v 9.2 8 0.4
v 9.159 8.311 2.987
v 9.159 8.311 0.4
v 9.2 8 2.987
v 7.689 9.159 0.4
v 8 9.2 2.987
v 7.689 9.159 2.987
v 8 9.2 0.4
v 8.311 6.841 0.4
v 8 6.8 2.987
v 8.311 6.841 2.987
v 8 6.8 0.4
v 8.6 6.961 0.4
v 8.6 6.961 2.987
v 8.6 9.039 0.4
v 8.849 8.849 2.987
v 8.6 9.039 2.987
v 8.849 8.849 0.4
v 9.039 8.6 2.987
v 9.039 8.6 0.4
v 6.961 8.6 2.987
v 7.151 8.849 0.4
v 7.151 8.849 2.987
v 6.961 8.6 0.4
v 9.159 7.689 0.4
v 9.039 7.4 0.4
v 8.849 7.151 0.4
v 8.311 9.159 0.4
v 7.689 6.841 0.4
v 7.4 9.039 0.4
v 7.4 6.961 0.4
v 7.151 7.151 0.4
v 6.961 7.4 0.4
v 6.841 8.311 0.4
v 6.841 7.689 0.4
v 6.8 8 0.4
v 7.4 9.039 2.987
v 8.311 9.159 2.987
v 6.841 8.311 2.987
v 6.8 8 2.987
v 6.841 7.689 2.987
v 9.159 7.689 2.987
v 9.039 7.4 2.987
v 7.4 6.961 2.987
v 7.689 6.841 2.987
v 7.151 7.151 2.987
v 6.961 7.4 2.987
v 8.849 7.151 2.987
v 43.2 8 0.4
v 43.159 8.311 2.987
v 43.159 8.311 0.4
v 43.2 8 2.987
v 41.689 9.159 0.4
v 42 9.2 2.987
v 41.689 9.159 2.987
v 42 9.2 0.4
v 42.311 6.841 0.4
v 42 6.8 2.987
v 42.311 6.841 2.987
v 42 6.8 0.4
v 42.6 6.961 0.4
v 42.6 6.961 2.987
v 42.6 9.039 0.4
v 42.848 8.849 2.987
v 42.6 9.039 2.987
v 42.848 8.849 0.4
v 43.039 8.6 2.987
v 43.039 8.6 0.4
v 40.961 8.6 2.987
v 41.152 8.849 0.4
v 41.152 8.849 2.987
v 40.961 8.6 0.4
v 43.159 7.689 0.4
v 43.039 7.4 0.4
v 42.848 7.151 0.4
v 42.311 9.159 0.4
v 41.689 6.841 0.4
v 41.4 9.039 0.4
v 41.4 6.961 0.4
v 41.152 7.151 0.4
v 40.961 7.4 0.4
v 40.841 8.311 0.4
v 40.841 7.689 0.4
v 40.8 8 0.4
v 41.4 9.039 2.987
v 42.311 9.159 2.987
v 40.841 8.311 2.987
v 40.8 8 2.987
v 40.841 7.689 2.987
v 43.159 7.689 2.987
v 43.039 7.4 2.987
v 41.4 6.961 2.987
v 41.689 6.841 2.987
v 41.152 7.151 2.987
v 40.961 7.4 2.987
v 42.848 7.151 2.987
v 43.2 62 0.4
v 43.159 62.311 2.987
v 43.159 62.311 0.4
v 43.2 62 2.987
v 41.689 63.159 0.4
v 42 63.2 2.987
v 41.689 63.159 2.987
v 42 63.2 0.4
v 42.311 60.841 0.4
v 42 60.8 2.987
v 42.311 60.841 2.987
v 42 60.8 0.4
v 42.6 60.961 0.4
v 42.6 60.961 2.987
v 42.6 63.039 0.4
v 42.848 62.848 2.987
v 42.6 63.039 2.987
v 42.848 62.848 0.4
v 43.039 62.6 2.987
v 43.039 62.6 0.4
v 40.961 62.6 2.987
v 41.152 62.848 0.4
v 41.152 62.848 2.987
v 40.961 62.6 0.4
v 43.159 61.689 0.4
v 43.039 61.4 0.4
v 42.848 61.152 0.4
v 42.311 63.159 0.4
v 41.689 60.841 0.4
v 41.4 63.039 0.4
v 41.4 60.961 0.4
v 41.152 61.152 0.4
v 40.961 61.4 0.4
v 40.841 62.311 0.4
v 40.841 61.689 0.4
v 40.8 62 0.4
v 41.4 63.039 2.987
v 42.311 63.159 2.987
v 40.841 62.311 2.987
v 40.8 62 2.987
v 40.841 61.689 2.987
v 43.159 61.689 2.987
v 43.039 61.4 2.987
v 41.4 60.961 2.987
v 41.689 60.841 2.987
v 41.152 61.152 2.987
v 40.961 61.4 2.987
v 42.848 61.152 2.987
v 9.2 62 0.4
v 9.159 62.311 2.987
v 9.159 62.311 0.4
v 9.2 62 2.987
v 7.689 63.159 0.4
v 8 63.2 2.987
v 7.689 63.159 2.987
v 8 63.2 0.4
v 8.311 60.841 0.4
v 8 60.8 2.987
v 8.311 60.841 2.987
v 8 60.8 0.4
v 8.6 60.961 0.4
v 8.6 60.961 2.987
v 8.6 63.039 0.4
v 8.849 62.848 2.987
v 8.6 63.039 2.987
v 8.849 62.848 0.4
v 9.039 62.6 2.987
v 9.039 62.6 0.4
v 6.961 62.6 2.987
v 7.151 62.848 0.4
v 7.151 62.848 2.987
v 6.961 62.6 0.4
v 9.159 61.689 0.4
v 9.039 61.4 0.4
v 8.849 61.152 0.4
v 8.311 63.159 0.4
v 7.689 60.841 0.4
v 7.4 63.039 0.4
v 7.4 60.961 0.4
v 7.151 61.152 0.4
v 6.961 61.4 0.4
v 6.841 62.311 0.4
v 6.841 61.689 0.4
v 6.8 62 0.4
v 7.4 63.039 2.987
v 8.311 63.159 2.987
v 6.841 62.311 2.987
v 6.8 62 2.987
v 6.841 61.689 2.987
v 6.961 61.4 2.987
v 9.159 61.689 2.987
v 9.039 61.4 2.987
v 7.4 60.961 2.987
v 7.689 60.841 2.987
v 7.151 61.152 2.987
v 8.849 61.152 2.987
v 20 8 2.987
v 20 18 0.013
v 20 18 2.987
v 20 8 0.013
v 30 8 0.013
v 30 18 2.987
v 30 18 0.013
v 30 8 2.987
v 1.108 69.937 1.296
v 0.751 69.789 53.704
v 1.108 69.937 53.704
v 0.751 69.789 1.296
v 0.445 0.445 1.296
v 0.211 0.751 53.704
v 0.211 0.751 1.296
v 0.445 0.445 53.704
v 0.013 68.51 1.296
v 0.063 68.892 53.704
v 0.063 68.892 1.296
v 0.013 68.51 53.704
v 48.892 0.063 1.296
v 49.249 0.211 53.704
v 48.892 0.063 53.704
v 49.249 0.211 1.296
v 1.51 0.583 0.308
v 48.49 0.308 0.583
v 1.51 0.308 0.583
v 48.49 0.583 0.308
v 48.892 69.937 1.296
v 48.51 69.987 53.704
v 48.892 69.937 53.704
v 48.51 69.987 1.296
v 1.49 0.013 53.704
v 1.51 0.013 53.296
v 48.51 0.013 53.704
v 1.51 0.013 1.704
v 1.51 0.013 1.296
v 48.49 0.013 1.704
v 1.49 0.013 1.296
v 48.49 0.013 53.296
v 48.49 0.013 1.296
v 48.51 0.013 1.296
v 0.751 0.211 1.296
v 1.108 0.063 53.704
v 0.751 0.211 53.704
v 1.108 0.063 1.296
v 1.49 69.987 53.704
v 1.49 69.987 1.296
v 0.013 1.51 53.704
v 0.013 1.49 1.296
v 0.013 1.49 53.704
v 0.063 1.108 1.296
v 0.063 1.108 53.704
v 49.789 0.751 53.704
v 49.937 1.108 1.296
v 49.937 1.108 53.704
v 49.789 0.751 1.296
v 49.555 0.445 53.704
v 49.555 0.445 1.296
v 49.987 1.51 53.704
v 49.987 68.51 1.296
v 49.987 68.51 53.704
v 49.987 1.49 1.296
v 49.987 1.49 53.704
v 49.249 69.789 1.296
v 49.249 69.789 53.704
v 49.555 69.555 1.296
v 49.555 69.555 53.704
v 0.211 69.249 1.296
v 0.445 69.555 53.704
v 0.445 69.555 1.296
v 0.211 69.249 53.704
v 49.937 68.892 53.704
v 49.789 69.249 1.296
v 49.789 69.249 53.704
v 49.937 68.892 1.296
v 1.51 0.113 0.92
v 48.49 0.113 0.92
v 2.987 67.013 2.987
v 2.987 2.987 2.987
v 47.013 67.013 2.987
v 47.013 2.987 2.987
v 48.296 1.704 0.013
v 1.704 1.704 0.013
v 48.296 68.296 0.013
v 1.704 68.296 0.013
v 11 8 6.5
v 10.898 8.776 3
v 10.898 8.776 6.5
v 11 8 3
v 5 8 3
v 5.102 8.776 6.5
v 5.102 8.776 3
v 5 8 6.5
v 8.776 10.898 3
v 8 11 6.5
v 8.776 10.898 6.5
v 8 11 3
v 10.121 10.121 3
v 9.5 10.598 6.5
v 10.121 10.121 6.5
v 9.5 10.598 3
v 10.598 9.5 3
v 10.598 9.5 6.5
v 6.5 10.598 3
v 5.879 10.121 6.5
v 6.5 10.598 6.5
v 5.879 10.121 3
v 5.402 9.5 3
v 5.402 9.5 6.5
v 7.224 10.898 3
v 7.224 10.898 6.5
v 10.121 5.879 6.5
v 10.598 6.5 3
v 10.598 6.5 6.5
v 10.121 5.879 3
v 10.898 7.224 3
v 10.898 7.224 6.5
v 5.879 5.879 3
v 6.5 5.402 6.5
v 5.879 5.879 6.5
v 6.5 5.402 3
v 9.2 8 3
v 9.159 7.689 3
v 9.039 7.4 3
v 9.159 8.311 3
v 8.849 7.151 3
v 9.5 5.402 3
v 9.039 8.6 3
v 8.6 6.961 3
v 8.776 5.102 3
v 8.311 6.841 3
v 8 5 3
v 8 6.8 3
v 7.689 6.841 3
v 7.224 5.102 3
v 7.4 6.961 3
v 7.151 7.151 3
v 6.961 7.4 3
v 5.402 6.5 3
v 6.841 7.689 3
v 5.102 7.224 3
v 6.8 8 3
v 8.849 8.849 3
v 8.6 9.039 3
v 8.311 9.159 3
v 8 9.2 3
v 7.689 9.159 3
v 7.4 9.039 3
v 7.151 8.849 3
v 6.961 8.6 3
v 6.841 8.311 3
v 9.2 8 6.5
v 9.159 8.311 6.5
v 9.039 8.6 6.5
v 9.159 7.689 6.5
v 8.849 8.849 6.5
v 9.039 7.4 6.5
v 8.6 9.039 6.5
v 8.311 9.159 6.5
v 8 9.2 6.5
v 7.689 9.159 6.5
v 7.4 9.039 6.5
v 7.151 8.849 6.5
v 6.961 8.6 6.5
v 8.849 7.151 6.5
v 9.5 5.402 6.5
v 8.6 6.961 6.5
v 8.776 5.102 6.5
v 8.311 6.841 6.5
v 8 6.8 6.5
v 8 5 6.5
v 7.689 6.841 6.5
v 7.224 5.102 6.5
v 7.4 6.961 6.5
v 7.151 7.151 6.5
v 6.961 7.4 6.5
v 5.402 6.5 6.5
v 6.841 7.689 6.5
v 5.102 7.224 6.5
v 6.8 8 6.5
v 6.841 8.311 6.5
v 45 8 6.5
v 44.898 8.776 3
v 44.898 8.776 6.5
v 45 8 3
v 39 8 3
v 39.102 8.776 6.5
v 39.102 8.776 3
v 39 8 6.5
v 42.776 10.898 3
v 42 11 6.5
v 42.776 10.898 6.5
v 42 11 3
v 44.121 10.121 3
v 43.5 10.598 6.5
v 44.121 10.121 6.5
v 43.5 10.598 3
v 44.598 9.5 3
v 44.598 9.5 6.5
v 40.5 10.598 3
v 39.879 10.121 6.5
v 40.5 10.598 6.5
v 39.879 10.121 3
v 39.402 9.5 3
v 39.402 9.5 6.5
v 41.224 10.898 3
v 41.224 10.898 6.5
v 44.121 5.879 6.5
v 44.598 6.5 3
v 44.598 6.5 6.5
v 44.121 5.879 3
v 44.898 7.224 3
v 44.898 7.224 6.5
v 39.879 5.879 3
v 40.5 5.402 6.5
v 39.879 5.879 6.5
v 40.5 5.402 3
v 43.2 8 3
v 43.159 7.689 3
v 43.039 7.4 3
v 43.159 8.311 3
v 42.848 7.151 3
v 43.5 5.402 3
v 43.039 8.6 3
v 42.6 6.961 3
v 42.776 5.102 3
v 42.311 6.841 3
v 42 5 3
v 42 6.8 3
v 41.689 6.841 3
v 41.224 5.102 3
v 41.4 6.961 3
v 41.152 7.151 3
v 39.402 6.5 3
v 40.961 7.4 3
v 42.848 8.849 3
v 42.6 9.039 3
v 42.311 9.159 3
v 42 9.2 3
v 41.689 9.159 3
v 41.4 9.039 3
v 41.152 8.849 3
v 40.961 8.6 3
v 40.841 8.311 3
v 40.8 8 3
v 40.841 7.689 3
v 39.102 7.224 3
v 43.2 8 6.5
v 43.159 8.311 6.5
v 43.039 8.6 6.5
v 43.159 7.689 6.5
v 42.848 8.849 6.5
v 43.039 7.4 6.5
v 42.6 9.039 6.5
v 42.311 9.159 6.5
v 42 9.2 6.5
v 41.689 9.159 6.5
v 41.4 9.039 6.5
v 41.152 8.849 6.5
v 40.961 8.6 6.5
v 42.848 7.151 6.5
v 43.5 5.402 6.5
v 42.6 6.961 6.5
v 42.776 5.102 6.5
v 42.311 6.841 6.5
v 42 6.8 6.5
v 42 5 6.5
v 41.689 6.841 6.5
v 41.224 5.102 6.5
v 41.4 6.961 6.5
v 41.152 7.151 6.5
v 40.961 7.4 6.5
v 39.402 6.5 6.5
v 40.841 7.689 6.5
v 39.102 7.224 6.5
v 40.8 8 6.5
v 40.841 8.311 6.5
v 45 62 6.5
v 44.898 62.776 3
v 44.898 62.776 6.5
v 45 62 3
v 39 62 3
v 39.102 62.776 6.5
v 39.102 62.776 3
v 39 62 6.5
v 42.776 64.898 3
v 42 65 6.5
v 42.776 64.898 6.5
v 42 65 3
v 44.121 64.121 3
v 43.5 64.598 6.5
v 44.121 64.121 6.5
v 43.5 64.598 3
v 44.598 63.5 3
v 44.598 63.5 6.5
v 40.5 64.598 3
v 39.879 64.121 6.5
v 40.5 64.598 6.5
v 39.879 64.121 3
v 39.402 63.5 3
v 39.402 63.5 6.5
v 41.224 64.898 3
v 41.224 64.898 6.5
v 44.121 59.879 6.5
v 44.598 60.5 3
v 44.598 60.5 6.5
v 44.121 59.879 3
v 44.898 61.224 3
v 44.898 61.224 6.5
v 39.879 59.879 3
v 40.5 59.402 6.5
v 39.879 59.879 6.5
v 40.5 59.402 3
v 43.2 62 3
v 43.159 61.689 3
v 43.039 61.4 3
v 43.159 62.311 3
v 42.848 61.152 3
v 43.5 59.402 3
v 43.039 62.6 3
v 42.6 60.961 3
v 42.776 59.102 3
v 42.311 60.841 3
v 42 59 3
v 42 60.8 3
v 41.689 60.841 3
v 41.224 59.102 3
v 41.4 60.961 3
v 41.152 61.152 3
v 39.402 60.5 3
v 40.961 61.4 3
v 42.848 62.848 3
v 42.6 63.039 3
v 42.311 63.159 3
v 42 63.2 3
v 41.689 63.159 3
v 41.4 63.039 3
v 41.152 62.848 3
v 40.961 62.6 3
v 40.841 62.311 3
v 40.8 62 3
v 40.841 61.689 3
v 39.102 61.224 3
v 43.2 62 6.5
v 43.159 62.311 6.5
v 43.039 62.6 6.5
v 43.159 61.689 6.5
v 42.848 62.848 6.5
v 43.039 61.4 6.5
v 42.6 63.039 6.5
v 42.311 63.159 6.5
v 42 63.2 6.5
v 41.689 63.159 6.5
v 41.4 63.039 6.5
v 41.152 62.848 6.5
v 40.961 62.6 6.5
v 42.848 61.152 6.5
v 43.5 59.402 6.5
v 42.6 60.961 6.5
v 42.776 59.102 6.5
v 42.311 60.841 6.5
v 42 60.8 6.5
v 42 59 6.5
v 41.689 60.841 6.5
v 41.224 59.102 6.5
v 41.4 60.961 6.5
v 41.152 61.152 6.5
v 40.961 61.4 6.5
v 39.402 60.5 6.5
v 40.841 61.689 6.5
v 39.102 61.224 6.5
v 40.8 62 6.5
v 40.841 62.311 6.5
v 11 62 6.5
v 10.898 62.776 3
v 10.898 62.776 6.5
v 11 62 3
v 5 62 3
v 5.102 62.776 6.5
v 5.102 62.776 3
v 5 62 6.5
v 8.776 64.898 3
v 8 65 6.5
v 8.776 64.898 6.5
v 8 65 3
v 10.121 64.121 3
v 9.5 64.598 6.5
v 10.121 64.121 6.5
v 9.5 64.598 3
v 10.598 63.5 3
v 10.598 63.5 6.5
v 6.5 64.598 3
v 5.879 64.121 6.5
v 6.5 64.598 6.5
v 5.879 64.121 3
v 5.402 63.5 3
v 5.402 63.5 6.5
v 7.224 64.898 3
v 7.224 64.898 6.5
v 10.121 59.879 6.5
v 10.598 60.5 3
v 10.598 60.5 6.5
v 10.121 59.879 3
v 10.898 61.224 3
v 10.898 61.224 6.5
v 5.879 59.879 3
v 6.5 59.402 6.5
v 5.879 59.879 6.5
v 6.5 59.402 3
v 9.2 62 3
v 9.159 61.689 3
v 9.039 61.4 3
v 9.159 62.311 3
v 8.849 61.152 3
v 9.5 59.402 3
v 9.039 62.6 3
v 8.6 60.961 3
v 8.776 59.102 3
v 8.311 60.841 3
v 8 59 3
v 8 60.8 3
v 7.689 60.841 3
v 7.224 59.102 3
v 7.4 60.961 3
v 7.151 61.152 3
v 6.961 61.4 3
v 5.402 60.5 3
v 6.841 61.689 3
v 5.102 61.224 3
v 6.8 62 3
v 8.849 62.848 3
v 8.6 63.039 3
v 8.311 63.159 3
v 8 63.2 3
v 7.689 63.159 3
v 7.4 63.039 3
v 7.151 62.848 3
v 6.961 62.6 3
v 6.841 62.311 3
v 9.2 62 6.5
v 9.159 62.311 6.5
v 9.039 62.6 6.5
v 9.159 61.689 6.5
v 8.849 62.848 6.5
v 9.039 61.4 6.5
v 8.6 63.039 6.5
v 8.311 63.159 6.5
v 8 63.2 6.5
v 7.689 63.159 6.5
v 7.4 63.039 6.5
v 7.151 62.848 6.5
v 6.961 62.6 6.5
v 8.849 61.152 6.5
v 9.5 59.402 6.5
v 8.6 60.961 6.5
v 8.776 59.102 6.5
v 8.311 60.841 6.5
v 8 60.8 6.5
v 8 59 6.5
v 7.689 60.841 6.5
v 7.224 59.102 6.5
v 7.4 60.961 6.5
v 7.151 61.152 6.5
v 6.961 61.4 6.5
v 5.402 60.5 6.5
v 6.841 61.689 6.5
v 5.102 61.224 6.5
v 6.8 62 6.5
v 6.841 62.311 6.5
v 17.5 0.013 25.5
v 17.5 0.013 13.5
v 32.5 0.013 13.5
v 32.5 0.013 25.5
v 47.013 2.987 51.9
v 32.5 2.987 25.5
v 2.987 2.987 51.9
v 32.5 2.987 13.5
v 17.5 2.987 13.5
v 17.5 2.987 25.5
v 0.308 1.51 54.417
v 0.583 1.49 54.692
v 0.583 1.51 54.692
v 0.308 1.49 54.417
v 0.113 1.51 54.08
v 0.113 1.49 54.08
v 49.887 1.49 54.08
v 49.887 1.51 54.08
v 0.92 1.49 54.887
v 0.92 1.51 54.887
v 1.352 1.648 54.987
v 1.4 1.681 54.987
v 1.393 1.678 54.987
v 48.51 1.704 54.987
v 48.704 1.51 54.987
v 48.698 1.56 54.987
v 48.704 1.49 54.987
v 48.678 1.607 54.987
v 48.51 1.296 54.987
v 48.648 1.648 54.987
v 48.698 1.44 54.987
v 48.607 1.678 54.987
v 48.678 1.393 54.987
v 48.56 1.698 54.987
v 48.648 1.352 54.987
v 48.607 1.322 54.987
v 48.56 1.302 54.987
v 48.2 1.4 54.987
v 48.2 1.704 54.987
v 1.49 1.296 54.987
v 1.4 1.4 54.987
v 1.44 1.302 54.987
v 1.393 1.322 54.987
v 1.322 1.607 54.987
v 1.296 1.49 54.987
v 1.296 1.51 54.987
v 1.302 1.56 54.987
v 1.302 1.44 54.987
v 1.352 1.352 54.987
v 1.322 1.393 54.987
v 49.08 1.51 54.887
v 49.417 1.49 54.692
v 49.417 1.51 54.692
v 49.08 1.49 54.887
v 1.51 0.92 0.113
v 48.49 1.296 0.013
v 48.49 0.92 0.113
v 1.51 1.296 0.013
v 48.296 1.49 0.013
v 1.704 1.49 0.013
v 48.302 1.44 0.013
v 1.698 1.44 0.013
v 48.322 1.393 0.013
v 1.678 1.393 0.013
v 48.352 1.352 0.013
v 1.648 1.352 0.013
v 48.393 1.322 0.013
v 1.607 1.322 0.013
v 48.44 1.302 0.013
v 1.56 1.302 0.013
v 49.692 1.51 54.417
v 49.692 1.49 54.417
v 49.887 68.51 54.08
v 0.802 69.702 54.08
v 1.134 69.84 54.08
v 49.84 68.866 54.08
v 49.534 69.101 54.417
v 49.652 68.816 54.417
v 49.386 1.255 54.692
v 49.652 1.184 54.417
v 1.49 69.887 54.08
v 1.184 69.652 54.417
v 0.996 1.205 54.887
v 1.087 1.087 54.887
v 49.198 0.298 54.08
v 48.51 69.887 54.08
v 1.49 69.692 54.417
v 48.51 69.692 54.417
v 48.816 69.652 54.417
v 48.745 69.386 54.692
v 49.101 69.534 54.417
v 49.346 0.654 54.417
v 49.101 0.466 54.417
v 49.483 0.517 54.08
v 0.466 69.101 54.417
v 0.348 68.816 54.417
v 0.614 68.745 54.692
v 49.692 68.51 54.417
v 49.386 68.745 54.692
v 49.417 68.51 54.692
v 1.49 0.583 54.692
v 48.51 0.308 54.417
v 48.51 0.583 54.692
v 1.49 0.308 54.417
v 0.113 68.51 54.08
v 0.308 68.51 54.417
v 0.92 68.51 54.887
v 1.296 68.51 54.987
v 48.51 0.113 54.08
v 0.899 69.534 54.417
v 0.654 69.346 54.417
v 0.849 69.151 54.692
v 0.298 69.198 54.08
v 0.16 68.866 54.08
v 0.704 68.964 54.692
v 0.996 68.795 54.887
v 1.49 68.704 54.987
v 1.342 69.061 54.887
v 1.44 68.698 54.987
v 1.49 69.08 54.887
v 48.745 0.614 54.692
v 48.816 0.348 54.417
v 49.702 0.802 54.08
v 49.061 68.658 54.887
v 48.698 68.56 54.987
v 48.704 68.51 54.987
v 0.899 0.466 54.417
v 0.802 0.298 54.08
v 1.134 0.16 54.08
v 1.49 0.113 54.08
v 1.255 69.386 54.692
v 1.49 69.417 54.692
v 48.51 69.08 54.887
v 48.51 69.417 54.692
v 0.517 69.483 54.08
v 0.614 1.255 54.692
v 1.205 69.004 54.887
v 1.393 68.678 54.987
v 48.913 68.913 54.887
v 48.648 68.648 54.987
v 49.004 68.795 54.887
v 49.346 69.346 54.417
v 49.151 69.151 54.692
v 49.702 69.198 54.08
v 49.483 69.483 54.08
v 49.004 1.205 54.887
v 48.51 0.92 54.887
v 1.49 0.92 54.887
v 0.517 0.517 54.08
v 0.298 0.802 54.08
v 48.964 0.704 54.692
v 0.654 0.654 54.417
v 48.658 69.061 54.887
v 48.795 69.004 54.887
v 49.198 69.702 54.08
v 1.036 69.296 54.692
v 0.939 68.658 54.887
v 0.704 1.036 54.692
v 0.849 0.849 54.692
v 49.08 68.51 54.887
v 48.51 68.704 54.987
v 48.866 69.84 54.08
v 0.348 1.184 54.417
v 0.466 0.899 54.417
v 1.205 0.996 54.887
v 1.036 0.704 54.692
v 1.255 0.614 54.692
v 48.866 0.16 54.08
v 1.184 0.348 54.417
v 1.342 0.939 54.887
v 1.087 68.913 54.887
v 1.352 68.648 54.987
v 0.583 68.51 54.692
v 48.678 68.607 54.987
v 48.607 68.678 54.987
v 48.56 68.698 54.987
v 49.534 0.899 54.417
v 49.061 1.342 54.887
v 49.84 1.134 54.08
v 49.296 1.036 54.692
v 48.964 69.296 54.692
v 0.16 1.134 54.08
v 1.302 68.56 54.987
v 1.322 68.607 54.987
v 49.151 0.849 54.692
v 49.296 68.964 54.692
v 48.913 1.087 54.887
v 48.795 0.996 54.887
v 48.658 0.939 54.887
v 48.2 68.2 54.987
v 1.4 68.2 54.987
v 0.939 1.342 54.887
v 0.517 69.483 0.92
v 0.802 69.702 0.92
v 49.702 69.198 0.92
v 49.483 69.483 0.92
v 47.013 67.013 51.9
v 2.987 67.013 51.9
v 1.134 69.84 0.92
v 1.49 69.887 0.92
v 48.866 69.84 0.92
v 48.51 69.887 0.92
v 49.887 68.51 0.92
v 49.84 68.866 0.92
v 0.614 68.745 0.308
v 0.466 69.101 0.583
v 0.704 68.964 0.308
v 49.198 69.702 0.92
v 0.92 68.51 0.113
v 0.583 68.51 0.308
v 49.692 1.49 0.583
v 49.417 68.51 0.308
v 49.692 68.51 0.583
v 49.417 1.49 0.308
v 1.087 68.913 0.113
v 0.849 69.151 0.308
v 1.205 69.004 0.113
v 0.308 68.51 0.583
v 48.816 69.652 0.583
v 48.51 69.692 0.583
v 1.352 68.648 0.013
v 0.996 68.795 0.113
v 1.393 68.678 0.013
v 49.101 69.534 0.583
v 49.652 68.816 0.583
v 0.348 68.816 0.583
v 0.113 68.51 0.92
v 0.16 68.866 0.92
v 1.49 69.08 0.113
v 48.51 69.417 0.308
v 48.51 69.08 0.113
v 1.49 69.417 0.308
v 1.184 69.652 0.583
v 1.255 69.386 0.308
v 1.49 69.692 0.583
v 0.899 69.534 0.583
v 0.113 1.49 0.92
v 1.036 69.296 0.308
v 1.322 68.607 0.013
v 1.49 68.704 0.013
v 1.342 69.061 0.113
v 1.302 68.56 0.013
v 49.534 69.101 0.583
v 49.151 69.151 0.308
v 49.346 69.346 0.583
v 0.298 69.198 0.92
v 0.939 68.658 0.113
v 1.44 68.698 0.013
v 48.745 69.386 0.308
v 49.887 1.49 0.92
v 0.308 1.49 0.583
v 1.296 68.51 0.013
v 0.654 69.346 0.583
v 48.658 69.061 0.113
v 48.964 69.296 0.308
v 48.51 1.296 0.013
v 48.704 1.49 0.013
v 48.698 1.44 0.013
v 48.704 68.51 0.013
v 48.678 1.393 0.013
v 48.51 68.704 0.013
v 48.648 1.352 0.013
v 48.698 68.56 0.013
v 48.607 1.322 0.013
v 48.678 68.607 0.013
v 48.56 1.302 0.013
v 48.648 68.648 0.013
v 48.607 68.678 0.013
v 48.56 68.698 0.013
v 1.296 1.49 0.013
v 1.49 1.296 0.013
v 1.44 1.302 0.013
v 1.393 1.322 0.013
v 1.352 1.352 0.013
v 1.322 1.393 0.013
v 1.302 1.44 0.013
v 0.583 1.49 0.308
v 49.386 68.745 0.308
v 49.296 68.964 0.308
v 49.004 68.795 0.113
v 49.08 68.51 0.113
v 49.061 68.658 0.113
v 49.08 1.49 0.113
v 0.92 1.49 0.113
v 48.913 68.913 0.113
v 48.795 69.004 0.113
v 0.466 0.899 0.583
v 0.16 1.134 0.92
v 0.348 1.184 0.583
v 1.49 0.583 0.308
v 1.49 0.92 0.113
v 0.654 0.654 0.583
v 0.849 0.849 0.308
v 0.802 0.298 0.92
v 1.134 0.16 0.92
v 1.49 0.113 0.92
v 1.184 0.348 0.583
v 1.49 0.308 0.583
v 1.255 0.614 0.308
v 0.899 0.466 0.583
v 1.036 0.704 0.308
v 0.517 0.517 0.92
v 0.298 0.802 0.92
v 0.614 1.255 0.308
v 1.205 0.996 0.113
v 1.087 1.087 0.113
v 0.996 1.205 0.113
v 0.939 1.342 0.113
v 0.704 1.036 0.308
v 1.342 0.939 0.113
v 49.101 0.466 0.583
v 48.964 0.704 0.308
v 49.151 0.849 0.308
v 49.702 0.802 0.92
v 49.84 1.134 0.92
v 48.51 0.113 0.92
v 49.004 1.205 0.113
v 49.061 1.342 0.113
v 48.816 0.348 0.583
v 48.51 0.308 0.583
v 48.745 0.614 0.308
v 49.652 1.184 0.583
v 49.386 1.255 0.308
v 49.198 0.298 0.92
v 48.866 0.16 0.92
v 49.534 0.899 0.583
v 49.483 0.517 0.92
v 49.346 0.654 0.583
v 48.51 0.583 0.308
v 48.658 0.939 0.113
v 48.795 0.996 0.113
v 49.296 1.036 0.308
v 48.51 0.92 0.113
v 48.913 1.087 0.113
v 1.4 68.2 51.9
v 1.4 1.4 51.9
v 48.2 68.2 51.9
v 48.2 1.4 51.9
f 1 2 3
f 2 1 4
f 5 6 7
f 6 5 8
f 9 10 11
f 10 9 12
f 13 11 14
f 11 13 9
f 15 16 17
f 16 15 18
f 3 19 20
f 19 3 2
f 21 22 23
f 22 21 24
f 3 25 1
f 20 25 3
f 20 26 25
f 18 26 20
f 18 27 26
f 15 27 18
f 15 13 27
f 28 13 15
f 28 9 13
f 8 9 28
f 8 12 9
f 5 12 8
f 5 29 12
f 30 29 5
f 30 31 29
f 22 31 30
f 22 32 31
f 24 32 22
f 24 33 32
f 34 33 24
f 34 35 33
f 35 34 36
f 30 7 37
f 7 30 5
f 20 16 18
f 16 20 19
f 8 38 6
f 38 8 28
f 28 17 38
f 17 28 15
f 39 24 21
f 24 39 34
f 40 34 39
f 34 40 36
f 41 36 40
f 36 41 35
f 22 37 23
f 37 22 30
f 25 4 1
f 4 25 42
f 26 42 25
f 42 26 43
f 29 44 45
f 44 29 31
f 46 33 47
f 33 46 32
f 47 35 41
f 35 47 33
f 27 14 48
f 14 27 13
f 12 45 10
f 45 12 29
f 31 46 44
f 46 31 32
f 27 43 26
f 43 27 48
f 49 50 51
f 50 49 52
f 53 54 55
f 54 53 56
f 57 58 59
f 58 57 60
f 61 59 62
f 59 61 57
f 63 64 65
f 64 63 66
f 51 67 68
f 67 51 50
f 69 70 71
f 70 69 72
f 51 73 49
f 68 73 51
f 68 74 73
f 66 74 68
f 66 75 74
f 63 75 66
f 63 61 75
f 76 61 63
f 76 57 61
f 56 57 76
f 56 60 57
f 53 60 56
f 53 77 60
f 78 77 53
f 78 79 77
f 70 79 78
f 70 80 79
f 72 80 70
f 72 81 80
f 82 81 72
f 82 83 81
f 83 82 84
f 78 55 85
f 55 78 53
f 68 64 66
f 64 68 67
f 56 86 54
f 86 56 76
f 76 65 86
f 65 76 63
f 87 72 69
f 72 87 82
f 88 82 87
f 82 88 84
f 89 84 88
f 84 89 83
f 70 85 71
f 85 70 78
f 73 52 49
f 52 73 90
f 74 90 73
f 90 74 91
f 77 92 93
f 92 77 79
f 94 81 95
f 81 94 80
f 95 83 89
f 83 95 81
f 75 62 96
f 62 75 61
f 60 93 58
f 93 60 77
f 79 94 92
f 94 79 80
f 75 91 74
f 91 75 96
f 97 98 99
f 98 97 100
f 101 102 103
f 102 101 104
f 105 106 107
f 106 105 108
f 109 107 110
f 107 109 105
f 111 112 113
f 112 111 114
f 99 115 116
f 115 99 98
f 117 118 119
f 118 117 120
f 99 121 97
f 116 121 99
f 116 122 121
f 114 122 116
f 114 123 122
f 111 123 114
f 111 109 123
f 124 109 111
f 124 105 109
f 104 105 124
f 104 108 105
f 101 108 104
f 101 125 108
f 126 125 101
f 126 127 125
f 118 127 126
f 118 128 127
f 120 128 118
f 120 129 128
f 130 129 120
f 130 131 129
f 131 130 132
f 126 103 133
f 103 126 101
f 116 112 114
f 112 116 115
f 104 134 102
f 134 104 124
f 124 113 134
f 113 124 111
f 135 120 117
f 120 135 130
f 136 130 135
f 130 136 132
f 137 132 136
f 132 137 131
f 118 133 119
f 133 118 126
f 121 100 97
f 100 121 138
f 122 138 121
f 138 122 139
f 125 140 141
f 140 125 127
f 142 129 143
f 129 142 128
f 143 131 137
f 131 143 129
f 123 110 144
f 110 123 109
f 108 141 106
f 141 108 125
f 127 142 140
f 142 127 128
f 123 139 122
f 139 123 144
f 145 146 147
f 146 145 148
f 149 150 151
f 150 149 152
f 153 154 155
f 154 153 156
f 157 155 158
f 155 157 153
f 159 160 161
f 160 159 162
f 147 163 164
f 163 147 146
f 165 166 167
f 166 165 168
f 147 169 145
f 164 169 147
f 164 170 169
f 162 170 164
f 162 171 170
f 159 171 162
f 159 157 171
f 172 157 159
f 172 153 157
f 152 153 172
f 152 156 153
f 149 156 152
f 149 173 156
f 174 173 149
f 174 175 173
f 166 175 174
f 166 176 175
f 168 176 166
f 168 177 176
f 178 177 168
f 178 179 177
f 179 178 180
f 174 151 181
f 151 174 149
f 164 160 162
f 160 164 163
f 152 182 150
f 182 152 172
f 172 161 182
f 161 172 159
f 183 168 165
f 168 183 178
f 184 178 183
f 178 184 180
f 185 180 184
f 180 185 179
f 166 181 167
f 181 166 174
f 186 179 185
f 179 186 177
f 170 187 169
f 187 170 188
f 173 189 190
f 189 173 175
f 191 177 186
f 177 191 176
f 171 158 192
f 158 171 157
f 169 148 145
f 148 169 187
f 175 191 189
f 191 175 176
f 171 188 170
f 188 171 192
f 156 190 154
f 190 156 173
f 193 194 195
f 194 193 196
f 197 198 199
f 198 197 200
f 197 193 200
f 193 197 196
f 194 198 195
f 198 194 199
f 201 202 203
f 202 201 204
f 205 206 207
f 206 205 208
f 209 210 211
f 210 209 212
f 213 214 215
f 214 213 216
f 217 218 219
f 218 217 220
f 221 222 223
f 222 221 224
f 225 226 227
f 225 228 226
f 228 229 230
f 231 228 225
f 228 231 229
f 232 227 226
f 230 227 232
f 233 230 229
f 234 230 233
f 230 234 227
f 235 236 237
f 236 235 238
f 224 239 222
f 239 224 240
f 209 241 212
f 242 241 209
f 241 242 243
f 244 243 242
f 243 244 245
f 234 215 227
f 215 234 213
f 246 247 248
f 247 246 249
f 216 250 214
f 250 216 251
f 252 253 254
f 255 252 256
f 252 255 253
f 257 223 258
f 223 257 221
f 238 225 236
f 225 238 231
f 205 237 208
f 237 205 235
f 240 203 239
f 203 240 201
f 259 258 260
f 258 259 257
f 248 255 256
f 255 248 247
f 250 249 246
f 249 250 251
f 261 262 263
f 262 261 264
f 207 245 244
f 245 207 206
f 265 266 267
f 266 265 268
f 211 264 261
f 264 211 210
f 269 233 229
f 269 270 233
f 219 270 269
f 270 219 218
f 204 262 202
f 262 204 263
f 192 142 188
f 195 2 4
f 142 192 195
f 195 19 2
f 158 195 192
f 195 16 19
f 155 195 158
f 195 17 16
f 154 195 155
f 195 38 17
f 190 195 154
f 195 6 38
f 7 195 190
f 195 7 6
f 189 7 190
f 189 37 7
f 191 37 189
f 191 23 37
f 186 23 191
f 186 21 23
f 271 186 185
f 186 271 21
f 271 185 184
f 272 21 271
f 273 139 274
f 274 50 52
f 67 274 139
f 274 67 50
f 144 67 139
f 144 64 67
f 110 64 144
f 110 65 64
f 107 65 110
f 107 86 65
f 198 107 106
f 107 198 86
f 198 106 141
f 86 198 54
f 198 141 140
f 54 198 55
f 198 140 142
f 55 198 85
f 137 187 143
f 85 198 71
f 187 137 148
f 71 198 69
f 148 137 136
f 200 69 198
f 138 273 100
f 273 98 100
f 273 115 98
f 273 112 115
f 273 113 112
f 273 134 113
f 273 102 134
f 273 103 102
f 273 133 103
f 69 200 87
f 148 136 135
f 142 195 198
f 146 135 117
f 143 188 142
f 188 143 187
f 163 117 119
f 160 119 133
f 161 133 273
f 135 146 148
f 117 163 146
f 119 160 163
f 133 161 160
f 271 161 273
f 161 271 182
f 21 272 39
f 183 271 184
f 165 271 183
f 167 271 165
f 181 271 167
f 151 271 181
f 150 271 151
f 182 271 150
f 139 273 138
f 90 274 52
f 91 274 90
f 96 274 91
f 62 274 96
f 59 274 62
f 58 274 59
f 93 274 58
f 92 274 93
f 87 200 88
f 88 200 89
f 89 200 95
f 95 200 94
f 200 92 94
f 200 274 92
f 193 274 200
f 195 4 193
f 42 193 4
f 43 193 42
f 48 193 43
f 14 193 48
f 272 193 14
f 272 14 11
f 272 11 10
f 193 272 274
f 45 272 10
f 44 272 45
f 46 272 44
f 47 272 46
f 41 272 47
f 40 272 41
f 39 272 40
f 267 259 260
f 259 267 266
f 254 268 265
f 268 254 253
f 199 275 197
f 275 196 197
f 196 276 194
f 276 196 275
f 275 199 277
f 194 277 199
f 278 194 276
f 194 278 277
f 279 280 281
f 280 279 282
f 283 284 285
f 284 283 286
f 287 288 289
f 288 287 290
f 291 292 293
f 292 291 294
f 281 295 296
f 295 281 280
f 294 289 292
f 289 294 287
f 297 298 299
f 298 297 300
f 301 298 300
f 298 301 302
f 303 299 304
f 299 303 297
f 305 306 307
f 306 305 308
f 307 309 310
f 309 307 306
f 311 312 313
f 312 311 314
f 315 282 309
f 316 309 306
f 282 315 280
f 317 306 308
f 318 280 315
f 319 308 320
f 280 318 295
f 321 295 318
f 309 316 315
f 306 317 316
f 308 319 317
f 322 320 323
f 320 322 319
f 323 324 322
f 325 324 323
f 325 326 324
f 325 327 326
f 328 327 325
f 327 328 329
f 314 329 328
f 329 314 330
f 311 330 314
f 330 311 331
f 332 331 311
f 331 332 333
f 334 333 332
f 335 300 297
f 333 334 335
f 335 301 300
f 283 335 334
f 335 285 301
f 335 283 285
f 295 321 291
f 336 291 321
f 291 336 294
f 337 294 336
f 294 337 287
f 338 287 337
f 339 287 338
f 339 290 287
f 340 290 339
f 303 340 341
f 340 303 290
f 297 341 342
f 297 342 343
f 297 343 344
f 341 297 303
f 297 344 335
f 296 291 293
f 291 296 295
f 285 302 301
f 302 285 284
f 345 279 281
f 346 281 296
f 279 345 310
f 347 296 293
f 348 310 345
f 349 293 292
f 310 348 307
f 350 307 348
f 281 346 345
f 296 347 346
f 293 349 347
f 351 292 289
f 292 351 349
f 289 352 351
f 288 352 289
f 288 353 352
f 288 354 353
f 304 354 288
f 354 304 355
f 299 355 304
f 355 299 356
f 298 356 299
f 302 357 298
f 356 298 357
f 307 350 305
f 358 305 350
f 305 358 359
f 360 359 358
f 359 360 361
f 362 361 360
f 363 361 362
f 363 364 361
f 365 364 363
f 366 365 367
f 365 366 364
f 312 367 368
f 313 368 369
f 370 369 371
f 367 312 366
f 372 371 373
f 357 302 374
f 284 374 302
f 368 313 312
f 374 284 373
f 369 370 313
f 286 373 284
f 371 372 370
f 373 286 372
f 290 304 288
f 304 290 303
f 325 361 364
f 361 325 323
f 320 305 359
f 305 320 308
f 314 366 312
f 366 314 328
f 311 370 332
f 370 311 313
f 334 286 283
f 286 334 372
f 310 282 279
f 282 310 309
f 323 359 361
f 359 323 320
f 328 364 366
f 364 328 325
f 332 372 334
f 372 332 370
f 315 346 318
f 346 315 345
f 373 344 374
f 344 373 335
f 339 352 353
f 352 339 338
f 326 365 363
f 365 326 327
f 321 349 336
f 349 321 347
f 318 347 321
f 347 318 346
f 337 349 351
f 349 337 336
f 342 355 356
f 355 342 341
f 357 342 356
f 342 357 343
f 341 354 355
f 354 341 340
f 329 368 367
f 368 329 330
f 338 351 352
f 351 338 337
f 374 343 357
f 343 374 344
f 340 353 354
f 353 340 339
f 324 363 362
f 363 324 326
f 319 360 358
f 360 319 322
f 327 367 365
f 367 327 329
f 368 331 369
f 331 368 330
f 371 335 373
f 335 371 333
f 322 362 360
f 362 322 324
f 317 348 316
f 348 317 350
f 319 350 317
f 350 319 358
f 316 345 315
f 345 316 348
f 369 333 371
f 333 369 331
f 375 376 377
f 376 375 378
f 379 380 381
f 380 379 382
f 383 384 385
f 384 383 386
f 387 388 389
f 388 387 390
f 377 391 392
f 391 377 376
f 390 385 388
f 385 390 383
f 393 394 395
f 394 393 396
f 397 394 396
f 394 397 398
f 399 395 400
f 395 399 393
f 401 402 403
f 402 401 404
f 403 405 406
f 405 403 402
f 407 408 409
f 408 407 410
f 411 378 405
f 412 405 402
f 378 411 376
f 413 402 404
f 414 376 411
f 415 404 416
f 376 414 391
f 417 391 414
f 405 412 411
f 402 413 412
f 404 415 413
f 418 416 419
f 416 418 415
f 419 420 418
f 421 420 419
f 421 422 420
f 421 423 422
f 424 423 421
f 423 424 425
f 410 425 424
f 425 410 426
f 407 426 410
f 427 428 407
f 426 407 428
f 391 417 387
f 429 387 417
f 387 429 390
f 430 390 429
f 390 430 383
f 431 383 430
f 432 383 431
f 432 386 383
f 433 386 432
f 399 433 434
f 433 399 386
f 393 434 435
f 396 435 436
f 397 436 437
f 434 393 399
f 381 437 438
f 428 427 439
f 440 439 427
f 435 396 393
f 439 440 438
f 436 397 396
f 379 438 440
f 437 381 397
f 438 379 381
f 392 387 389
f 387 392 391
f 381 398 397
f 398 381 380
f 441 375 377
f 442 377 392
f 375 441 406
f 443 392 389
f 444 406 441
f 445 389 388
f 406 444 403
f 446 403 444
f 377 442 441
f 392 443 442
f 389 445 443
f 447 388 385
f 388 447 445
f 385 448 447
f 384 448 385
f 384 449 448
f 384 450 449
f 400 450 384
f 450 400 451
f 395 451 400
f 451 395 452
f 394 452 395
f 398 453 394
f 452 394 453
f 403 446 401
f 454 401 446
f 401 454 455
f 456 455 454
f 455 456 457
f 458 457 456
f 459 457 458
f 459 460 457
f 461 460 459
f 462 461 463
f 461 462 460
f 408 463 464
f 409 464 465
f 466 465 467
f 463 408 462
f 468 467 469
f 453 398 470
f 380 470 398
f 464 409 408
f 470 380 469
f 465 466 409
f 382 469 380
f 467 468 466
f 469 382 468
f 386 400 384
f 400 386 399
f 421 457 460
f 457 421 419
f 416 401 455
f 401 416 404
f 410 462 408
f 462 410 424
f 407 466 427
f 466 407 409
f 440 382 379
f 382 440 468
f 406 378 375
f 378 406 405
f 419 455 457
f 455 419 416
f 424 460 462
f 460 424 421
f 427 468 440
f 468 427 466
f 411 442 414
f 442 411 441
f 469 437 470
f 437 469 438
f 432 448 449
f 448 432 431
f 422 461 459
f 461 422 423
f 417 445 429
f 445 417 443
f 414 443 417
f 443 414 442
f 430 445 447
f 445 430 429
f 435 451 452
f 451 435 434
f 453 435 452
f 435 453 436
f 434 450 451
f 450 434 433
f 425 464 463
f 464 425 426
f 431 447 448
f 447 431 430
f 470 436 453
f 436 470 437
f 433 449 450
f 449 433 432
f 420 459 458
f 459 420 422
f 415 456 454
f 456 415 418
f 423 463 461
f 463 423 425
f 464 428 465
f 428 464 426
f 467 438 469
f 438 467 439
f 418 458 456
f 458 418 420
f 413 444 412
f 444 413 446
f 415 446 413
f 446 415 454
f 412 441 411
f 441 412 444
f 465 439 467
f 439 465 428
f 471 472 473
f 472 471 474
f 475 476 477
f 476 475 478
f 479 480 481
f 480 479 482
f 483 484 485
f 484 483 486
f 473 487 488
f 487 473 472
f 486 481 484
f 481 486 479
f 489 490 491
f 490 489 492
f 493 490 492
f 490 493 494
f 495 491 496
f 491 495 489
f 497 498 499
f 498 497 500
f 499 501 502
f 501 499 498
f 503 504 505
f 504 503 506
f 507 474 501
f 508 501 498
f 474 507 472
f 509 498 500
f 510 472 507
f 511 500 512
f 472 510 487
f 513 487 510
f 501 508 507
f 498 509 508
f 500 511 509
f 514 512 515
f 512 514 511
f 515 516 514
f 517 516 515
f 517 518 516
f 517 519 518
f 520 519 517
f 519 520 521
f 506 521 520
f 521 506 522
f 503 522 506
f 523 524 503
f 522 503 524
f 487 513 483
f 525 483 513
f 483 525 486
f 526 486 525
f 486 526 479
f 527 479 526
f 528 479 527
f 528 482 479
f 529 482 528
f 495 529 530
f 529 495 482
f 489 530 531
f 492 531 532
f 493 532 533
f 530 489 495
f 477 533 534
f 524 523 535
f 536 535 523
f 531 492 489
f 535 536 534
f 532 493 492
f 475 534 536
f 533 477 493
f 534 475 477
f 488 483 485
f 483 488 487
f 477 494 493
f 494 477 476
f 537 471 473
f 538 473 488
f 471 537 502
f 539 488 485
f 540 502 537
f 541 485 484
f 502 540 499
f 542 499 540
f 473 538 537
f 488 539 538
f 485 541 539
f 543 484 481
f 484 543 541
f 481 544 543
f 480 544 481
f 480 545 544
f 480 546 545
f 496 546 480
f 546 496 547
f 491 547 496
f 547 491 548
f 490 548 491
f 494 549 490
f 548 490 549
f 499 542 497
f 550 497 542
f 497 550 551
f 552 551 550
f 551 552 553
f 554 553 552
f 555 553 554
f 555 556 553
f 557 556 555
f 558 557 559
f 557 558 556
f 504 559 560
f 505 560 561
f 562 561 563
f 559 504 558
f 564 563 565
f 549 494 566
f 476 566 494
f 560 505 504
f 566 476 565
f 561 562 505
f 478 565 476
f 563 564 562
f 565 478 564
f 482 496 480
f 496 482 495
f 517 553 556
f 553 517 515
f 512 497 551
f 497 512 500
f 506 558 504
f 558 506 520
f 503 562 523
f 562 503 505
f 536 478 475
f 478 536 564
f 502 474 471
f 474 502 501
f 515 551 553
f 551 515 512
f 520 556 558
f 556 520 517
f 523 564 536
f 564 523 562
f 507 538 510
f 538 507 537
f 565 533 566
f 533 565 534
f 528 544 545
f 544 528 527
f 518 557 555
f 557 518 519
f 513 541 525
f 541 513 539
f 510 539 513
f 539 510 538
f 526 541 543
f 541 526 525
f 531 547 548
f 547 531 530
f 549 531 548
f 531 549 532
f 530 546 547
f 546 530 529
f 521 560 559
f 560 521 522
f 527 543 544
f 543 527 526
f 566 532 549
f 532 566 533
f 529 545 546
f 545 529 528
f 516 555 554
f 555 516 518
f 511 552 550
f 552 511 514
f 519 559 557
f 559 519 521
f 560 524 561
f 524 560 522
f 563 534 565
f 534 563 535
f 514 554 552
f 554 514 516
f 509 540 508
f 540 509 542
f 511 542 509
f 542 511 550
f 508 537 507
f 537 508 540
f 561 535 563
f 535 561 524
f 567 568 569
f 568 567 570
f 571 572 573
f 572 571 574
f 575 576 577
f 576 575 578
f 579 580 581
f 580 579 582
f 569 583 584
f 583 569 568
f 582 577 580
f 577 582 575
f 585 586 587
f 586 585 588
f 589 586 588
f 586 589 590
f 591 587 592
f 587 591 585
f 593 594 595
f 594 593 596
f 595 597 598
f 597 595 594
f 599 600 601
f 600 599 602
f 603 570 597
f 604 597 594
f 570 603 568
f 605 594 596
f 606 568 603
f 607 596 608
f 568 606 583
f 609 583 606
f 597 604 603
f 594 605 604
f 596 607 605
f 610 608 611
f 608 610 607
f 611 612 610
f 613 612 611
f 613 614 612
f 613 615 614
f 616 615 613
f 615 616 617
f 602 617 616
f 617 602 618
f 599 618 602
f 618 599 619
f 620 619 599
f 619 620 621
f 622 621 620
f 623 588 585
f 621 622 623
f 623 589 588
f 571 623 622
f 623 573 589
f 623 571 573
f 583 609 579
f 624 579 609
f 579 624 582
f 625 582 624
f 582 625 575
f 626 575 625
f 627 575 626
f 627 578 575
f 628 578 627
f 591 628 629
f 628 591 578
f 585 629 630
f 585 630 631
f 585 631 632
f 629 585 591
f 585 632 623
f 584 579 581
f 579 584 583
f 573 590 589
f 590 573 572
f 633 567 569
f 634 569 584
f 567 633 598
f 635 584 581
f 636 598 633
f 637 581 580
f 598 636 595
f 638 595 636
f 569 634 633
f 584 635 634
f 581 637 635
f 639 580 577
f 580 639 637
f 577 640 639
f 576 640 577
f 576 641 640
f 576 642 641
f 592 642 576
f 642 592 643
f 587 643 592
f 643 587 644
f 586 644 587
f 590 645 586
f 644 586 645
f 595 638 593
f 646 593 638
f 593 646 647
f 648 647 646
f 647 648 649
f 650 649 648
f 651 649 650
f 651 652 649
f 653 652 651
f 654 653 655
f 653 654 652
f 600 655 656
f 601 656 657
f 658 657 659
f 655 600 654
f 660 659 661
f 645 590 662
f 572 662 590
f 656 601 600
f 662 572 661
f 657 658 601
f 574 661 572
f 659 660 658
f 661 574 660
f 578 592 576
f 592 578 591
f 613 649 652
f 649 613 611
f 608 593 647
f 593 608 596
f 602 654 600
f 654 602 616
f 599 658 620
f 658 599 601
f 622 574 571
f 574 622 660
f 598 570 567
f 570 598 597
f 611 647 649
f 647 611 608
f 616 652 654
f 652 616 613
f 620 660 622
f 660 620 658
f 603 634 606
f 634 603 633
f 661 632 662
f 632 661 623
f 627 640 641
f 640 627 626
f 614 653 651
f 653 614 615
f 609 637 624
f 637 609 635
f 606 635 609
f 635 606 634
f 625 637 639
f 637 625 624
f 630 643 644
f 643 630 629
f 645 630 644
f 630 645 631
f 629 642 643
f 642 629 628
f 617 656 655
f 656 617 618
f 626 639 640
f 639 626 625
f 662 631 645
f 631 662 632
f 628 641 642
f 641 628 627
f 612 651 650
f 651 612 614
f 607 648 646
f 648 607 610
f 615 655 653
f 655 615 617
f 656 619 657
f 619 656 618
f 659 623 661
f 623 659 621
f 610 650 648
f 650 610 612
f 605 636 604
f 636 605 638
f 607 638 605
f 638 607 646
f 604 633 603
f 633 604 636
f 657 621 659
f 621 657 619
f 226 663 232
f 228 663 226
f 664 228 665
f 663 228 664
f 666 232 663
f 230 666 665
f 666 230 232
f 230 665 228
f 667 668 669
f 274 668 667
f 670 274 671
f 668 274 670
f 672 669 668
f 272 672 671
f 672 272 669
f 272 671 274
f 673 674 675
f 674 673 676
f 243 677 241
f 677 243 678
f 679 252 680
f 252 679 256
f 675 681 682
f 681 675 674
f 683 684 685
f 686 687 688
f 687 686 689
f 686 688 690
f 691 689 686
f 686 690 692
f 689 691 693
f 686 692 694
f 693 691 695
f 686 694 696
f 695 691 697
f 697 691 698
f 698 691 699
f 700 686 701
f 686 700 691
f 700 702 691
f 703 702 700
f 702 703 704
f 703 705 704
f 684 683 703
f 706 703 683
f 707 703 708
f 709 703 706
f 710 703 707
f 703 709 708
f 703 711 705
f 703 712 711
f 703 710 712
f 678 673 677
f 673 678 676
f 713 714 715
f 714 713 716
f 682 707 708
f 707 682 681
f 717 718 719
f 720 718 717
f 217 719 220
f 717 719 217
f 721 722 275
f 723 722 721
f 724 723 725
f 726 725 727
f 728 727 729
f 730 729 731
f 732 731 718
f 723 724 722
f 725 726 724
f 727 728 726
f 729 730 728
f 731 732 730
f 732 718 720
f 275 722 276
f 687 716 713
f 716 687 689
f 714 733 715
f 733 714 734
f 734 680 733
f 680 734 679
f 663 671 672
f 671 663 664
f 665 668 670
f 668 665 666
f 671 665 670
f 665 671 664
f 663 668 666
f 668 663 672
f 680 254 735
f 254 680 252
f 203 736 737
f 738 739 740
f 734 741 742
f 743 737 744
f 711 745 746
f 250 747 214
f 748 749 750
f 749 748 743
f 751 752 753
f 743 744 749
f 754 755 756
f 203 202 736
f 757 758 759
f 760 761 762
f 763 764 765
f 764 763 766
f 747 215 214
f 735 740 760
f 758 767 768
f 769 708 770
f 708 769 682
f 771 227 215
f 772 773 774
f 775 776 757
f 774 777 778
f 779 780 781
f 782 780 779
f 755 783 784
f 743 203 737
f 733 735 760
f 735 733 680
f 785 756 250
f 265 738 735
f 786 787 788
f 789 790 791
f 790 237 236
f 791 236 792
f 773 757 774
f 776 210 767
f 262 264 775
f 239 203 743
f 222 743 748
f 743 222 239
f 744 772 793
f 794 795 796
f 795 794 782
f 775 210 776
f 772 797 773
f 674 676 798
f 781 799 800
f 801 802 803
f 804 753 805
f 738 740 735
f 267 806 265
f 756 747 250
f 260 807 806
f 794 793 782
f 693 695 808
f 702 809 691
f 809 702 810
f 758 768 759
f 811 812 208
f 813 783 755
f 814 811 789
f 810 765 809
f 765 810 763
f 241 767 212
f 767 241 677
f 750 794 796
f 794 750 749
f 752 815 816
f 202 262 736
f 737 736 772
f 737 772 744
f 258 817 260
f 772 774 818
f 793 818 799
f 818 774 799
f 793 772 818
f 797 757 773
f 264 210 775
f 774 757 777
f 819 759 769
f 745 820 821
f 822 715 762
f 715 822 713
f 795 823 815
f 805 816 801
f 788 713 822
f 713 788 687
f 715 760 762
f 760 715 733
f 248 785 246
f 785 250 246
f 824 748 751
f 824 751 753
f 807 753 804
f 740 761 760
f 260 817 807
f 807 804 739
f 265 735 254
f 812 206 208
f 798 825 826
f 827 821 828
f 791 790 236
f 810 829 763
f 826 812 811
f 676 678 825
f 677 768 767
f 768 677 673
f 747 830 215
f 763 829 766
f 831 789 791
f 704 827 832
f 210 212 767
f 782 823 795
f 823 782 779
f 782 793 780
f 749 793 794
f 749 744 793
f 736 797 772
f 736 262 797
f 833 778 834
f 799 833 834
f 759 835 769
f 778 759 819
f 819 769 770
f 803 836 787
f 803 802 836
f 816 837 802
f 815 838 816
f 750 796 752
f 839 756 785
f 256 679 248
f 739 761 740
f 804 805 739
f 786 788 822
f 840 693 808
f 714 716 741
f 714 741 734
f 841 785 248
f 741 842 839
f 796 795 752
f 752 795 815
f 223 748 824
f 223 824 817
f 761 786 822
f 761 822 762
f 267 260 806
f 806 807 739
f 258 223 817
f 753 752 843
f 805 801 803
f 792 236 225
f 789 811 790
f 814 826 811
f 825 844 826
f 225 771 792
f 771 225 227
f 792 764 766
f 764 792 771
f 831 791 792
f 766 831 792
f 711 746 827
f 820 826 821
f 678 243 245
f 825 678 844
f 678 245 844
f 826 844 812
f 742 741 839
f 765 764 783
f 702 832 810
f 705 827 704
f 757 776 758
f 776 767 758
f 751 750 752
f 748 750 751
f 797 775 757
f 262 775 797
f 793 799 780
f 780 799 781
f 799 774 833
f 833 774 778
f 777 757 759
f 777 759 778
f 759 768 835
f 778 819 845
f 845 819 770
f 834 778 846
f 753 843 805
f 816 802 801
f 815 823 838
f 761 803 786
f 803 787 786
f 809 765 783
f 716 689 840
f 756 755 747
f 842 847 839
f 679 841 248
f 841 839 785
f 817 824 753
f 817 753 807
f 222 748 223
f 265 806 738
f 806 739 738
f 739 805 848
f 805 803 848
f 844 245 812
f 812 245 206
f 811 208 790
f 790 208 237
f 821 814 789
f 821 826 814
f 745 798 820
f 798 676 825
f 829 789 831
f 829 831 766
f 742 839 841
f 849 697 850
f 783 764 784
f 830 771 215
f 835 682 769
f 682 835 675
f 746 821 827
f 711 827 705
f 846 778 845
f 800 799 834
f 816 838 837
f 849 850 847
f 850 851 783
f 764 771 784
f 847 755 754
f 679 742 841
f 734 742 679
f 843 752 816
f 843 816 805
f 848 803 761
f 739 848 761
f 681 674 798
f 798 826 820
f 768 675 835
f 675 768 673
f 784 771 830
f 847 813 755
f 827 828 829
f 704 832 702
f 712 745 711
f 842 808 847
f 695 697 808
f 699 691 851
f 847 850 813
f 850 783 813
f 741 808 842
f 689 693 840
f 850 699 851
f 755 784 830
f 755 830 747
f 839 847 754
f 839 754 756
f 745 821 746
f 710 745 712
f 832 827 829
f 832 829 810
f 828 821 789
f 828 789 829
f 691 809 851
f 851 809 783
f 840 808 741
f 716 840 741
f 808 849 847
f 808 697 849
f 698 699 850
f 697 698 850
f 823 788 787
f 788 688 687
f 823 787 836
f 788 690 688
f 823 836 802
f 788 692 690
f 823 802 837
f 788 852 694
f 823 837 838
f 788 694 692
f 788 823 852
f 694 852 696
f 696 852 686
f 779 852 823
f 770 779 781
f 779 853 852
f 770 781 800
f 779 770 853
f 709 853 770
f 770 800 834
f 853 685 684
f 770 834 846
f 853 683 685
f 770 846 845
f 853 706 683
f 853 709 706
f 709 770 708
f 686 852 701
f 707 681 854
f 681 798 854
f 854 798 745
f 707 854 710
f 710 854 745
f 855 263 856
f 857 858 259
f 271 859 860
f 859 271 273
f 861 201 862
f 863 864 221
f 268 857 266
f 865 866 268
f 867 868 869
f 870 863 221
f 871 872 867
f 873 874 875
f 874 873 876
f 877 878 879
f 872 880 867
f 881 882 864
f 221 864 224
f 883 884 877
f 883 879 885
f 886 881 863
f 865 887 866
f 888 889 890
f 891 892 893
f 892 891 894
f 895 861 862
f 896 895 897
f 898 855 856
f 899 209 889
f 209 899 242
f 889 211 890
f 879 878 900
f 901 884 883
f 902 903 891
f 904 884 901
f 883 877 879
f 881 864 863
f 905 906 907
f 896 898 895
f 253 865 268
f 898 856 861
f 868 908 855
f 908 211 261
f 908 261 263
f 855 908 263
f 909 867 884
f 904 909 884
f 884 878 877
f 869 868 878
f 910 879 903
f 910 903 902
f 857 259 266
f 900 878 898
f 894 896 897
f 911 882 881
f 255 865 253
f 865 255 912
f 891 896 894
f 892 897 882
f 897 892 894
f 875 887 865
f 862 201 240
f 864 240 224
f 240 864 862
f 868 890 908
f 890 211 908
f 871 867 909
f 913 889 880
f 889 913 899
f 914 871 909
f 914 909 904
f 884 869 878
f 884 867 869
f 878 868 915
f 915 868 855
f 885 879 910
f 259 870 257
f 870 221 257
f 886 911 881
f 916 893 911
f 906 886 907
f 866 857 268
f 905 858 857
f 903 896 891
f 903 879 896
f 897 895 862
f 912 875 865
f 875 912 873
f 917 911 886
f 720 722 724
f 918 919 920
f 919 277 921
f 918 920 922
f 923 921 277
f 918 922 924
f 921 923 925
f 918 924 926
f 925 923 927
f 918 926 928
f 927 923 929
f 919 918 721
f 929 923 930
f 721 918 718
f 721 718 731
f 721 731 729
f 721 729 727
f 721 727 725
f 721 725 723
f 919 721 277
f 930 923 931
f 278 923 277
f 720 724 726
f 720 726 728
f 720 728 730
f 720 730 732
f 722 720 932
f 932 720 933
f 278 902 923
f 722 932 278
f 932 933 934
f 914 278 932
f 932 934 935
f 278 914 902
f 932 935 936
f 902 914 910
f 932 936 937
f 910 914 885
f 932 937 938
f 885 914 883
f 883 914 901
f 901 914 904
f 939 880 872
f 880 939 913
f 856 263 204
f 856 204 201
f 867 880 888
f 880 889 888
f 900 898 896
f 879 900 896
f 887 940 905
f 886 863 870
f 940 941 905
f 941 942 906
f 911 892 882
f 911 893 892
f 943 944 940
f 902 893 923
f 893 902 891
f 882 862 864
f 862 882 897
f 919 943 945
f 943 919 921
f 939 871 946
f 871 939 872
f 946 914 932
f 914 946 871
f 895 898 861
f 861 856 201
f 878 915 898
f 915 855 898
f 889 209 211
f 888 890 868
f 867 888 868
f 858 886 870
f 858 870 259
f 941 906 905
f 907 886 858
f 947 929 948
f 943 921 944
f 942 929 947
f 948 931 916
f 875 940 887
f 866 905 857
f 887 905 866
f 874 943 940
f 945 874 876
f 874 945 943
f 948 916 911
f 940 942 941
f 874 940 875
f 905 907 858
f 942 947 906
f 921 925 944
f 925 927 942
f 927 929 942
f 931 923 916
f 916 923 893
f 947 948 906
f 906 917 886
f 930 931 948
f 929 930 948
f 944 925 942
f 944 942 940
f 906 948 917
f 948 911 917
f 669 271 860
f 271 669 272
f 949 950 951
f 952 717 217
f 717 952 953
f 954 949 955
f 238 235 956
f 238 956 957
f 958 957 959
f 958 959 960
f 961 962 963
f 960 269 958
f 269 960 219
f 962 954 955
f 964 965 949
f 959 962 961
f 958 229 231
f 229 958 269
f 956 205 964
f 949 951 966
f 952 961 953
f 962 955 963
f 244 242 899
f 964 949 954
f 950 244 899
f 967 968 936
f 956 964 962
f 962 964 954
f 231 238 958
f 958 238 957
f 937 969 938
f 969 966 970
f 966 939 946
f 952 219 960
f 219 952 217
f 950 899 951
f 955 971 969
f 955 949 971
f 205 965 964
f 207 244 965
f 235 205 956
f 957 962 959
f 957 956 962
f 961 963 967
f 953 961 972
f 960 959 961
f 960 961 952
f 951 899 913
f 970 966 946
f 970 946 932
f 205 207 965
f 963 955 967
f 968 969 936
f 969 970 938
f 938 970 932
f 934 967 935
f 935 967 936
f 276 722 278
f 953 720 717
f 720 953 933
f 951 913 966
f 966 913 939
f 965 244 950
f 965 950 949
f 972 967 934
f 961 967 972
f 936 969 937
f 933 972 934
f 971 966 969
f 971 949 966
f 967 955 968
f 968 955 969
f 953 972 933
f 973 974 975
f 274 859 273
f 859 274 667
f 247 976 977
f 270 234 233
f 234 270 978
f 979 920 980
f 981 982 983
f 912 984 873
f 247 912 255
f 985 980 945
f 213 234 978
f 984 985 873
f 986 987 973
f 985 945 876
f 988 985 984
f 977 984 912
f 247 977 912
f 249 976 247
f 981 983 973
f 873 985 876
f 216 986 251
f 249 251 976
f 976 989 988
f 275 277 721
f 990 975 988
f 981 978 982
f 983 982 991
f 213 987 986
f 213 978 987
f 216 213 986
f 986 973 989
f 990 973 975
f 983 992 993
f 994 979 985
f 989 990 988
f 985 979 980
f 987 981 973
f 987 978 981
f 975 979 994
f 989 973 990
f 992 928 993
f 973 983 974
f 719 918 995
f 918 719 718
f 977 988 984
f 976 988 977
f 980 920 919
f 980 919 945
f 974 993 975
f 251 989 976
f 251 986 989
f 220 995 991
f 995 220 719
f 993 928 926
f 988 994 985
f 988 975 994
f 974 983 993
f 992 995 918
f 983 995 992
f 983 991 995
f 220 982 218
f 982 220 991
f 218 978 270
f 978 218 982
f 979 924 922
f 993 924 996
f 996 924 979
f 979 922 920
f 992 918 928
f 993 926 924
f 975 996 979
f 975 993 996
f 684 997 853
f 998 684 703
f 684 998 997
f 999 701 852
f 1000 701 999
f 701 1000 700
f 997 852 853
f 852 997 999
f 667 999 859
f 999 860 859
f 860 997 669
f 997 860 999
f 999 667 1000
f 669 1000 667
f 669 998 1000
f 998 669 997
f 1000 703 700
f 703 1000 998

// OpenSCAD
difference(){
	union() {
		translate(v = [0, 0, 3]) {
			scale(v = [1, 1, -1]) {
				union() {
					difference() {
						translate(v = [1.4900000000, 1.4900000000, 1.4900000000]) {
							minkowski() {
								cube(size = [47.0200000000, 67.0200000000, 0.0200000000]);
								rotate(a = 0, v = [1, 0, 0]) {
									sphere($fn = 24, r = 1.4900000000);
								}
							}
						}
						union() {
							translate(v = [0, 0, 3]) {
								scale(v = [1, 1, -1]) {
									union() {
										translate(v = [8.0000000000, 8.0000000000, 3]) {
											translate(v = [0, 0, -2.6000000000]) {
												cylinder($fn = 24, h = 7.1000000000, r = 1.2000000000);
											}
										}
										translate(v = [42.0000000000, 8.0000000000, 3]) {
											translate(v = [0, 0, -2.6000000000]) {
												cylinder($fn = 24, h = 7.1000000000, r = 1.2000000000);
											}
										}
										translate(v = [42.0000000000, 62.0000000000, 3]) {
											translate(v = [0, 0, -2.6000000000]) {
												cylinder($fn = 24, h = 7.1000000000, r = 1.2000000000);
											}
										}
										translate(v = [8.0000000000, 62.0000000000, 3]) {
											translate(v = [0, 0, -2.6000000000]) {
												cylinder($fn = 24, h = 7.1000000000, r = 1.2000000000);
											}
										}
									}
								}
							}
							translate(v = [20, 8, -1]) {
								cube(size = [10, 10, 5]);
							}
						}
					}
					union() {
						translate(v = [0, 0, 3]) {
							scale(v = [1, 1, -1]) {
								union() {
									translate(v = [8.0000000000, 8.0000000000, 3]) {
										difference() {
											cylinder($fn = 24, h = 3.5000000000, r = 3.0000000000);
											translate(v = [0, 0, -2.6000000000]) {
												cylinder($fn = 24, h = 7.1000000000, r = 1.2000000000);
											}
										}
									}
									translate(v = [42.0000000000, 8.0000000000, 3]) {
										difference() {
											cylinder($fn = 24, h = 3.5000000000, r = 3.0000000000);
											translate(v = [0, 0, -2.6000000000]) {
												cylinder($fn = 24, h = 7.1000000000, r = 1.2000000000);
											}
										}
									}
									translate(v = [42.0000000000, 62.0000000000, 3]) {
										difference() {
											cylinder($fn = 24, h = 3.5000000000, r = 3.0000000000);
											translate(v = [0, 0, -2.6000000000]) {
												cylinder($fn = 24, h = 7.1000000000, r = 1.2000000000);
											}
										}
									}
									translate(v = [8.0000000000, 62.0000000000, 3]) {
										difference() {
											cylinder($fn = 24, h = 3.5000000000, r = 3.0000000000);
											translate(v = [0, 0, -2.6000000000]) {
												cylinder($fn = 24, h = 7.1000000000, r = 1.2000000000);
											}
										}
									}
								}
							}
						}
					}
				}
			}
		}
		translate(v = [0, 0, 52]) {
			union() {
				difference() {
					translate(v = [1.4900000000, 1.4900000000, 1.4900000000]) {
						minkowski() {
							cube(size = [47.0200000000, 67.0200000000, 0.0200000000]);
							rotate(a = 0, v = [1, 0, 0]) {
								sphere($fn = 24, r = 1.4900000000);
							}
						}
					}
					union();
				}
				union() {
				}
			}
		}
		translate(v = [0, 3, 0]) {
			rotate(a = 90, v = [1, 0, 0]) {
				union() {
					difference() {
						translate(v = [1.4900000000, 1.4900000000, 1.4900000000]) {
							minkowski() {
								cube(size = [47.0200000000, 52.0200000000, 0.0200000000]);
								rotate(a = 90, v = [1, 0, 0]) {
									sphere($fn = 24, r = 1.4900000000);
								}
							}
						}
						union() {
							translate(v = [17.5000000000, 13.5000000000, -1]) {
								cube(size = [15, 12, 5]);
							}
						}
					}
					union();
				}
			}
		}
		translate(v = [0, 67, 55]) {
			rotate(a = -90, v = [1, 0, 0]) {
				union() {
					difference() {
						translate(v = [1.4900000000, 1.4900000000, 1.4900000000]) {
							minkowski() {
								cube(size = [47.0200000000, 52.0200000000, 0.0200000000]);
								rotate(a = 90, v = [1, 0, 0]) {
									sphere($fn = 24, r = 1.4900000000);
								}
							}
						}
						union();
					}
					union();
				}
			}
		}
		translate(v = [3, 0, 0]) {
			rotate(a = -90, v = [0, 1, 0]) {
				union() {
					difference() {
						translate(v = [1.4900000000, 1.4900000000, 1.4900000000]) {
							minkowski() {
								cube(size = [52.0200000000, 67.0200000000, 0.0200000000]);
								rotate(a = 90, v = [0, 1, 0]) {
									sphere($fn = 24, r = 1.4900000000);
								}
							}
						}
						union();
					}
					union();
				}
			}
		}
		translate(v = [47, 0, 55]) {
			rotate(a = 90, v = [0, 1, 0]) {
				union() {
					difference() {
						translate(v = [1.4900000000, 1.4900000000, 1.4900000000]) {
							minkowski() {
								cube(size = [52.0200000000, 67.0200000000, 0.0200000000]);
								rotate(a = 90, v = [0, 1, 0]) {
									sphere($fn = 24, r = 1.4900000000);
								}
							}
						}
						union();
					}
					union();
				}
			}
		}
	}
	/* Holes Below*/
	union(){
		translate(v = [0, 0, 52]){
			union(){
				union(){
					translate(v = [1.4000000000, 1.4000000000, -0.1000000000]) {
						cube(size = [46.8000000000, 66.8000000000, 3.2000000000]);
					}
				}
			}
		}
	} /* End Holes */ 
}
/***********************************************
*********      SolidPython code:      **********
************************************************
 
import boxscad

from solid import *

board_width = 40
board_length = 60

board_margin = 2

box_wall_thickness = 3

box_width = board_width + board_margin*2 + box_wall_thickness*2
box_length = board_length + board_margin*2 + box_wall_thickness*2
box_height = 55

hole_offset = 3
hole_radius = 1.2
standoff_length = 3.5

usb_hole_y_offset = standoff_length + 10
usb_hole_width = 15
usb_hole_height = 12

b = boxscad.RoundedBox(box_width, box_length, box_height, box_wall_thickness)

b.add_ornament(boxscad.Face.TOP, boxscad.ornaments.InsetLid(b.wall_thickness))

b.add_ornament(boxscad.Face.BOTTOM, boxscad.ornaments.StandOffs(
    board_width-(hole_offset*2),
    board_length-(hole_offset*2),
    standoff_length,
    hole_radius,
    wall_hole_depth=b.wall_thickness - .4
))

b.add_ornament(boxscad.Face.BOTTOM, boxscad.ornaments.SquareHole(
    box_wall_thickness+board_margin+15,
    box_wall_thickness+board_margin+3,
    10,
    10
))

b.add_ornament(boxscad.Face.FRONT, boxscad.ornaments.SquareHole(
    (box_width - usb_hole_width) * .5,
    usb_hole_y_offset,
    usb_hole_width,
    usb_hole_height
))

scad_render_to_file(b.render(), 'box2.scad')

boxscad.blueprint.blueprint('blueprint', b)
 
 
************************************************/
